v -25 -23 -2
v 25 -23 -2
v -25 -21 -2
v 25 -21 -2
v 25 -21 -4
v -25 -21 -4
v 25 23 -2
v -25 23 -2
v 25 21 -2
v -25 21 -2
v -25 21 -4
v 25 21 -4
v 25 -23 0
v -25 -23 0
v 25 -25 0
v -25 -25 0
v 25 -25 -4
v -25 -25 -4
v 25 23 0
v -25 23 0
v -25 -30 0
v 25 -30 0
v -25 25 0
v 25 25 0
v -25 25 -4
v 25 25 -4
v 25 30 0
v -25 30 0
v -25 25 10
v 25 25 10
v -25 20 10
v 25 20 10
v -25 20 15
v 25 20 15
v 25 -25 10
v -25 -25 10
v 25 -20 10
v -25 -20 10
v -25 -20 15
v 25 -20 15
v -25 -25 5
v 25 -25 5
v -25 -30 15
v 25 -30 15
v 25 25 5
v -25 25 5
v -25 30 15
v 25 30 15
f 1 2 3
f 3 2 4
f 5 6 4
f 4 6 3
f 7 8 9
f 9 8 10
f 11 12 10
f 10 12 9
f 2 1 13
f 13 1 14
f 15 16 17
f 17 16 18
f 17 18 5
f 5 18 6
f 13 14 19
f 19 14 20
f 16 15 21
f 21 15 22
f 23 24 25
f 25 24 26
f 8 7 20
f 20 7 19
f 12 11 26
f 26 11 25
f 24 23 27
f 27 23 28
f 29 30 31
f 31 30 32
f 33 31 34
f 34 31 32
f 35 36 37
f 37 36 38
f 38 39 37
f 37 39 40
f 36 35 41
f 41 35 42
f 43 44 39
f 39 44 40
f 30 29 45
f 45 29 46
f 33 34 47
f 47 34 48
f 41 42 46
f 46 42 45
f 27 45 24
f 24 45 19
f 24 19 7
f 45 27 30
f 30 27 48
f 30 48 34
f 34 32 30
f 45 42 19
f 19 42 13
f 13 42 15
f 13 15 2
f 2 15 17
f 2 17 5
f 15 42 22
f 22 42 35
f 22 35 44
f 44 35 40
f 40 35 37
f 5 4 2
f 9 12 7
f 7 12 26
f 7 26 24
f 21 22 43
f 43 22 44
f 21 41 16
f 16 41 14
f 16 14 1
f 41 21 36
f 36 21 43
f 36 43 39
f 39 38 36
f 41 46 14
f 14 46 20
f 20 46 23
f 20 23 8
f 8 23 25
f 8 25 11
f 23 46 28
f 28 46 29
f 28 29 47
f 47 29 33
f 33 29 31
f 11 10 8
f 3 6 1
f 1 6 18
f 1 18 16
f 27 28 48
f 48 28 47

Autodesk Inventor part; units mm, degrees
ref_plane "YZ Plane" through (0, 0, 0) normal (1, 0, 0) x (0, 1, 0)
ref_plane "XZ Plane" through (0, 0, 0) normal (0, 1, 0) x (-1, 0, 0)
ref_plane "XY Plane" through (0, 0, 0) normal (0, 0, 1) x (1, 0, 0)
sketch "Sketch1" plane through (0, 0, 0) normal (0, 0, 1) x (1, 0, 0)
  line L0 (-25, 30) -> (25, 30)
  line L1 (25, 30) -> (25, -30)
  line L2 (25, -30) -> (-25, -30)
  line L3 (-25, -30) -> (-25, 30)
  point P0 (0, 0)
  dimension "d0" = 50
  dimension "d1" = 60
  dimension "d2" = 30
  dimension "d3" = 25
extrude "Extrusion1" add sketch "Sketch1" along normal blind 5
sketch "Sketch2" plane through (0, 0, 5) normal (0, 0, 1) x (1, 0, 0)
  line L0 (-25, 30) -> (-25, -30) projected
  line L1 (-25, 25) -> (25, 25)
  line L2 (25, -30) -> (25, 30) projected
  line L3 (25, 30) -> (-25, 30) projected
  point P0 (0, 0)
  dimension "d6" = 5
extrude "Extrusion2" add sketch "Sketch2" along normal blind 10
sketch "Sketch3" plane through (0, 0, 5) normal (0, 0, 1) x (1, 0, 0)
  line L0 (-25, -30) -> (-25, 30) projected
  line L1 (-25, -25) -> (25, -25)
  line L2 (25, 30) -> (25, -30) projected
  line L3 (-25, -30) -> (25, -30) projected
  point P0 (0, 0)
  dimension "d9" = 5
extrude "Extrusion3" add sketch "Sketch3" along normal blind 10
sketch "Sketch4" plane through (-25, -25, 5) normal (0, 1, 0) x (1, 0, 0)
  line L0 (0, 5) -> (0, -10) projected
  line L1 (0, -5) -> (50, -5)
  line L2 (50, 5) -> (50, -10) projected
  line L3 (0, -10) -> (50, -10) projected
  point P0 (25, 5)
  dimension "d12" = 5
extrude "Extrusion4" add sketch "Sketch4" along normal blind 5
sketch "Sketch5" plane through (-25, 25, 5) normal (0, -1, 0) x (1, 0, 0)
  line L0 (0, -5) -> (0, 10) projected
  line L1 (0, 5) -> (50, 5)
  line L2 (50, -5) -> (50, 10) projected
  line L3 (50, 10) -> (0, 10) projected
  point P0 (25, -5)
  dimension "d15" = 5
extrude "Extrusion5" add sketch "Sketch5" along normal blind 5
sketch "Sketch6" plane through (0, 0, 0) normal (0, 0, -1) x (-1, 0, 0)
  line L0 (-25, 30) -> (-25, -30) projected
  line L1 (25, -30) -> (25, 30) projected
  line L2 (-25, 25) -> (25, 25)
  line L3 (25, 25) -> (25, 23)
  line L4 (25, 23) -> (-25, 23)
  line L5 (-25, 23) -> (-25, 25)
  line L6 (25, 30) -> (-25, 30) projected
  point P0 (0, 0)
  dimension "d18" = 2
  dimension "d19" = 5
extrude "Extrusion6" add sketch "Sketch6" along normal blind 4 contours L2 L1 L4 L0
sketch "Sketch7" plane through (0, 0, 0) normal (0, 0, -1) x (-1, 0, 0)
  line L0 (-25, 23) -> (-25, -30) projected
  line L1 (25, -30) -> (25, 23) projected
  line L2 (-25, -25) -> (25, -25)
  line L3 (25, -25) -> (25, -23)
  line L4 (25, -23) -> (-25, -23)
  line L5 (-25, -23) -> (-25, -25)
  line L6 (-25, -30) -> (25, -30) projected
  point P0 (0, 0)
  dimension "d22" = 2
  dimension "d23" = 5
extrude "Extrusion7" add sketch "Sketch7" along normal blind 4 contours L4 L1 L2 L0
sketch "Sketch8" plane through (-25, 23, 0) normal (0, -1, 0) x (1, 0, 0)
  point P0 (25, 0)
sketch "Sketch9" plane through (-25, 23, 0) normal (0, -1, 0) x (1, 0, 0)
  line L0 (50, 0) -> (50, -4) projected
  line L1 (0, 0) -> (0, -4) projected
  line L2 (50, -4) -> (0, -4)
  line L3 (0, -4) -> (0, -2)
  line L4 (0, -2) -> (50, -2)
  line L5 (50, -2) -> (50, -4)
  point P0 (25, 0)
extrude "Extrusion8" add sketch "Sketch9" along normal blind 2
sketch "Sketch10" plane through (-25, -23, 0) normal (0, 1, 0) x (1, 0, 0)
  line L0 (0, 0) -> (0, 4) projected
  line L1 (50, 0) -> (50, 4) projected
  line L2 (0, 4) -> (50, 4)
  line L3 (50, 4) -> (50, 2)
  line L4 (50, 2) -> (0, 2)
  line L5 (0, 2) -> (0, 4)
  point P0 (25, 0)
extrude "Extrusion9" add sketch "Sketch10" along normal blind 2
properties part number "Substrategrip0degreesThick"
